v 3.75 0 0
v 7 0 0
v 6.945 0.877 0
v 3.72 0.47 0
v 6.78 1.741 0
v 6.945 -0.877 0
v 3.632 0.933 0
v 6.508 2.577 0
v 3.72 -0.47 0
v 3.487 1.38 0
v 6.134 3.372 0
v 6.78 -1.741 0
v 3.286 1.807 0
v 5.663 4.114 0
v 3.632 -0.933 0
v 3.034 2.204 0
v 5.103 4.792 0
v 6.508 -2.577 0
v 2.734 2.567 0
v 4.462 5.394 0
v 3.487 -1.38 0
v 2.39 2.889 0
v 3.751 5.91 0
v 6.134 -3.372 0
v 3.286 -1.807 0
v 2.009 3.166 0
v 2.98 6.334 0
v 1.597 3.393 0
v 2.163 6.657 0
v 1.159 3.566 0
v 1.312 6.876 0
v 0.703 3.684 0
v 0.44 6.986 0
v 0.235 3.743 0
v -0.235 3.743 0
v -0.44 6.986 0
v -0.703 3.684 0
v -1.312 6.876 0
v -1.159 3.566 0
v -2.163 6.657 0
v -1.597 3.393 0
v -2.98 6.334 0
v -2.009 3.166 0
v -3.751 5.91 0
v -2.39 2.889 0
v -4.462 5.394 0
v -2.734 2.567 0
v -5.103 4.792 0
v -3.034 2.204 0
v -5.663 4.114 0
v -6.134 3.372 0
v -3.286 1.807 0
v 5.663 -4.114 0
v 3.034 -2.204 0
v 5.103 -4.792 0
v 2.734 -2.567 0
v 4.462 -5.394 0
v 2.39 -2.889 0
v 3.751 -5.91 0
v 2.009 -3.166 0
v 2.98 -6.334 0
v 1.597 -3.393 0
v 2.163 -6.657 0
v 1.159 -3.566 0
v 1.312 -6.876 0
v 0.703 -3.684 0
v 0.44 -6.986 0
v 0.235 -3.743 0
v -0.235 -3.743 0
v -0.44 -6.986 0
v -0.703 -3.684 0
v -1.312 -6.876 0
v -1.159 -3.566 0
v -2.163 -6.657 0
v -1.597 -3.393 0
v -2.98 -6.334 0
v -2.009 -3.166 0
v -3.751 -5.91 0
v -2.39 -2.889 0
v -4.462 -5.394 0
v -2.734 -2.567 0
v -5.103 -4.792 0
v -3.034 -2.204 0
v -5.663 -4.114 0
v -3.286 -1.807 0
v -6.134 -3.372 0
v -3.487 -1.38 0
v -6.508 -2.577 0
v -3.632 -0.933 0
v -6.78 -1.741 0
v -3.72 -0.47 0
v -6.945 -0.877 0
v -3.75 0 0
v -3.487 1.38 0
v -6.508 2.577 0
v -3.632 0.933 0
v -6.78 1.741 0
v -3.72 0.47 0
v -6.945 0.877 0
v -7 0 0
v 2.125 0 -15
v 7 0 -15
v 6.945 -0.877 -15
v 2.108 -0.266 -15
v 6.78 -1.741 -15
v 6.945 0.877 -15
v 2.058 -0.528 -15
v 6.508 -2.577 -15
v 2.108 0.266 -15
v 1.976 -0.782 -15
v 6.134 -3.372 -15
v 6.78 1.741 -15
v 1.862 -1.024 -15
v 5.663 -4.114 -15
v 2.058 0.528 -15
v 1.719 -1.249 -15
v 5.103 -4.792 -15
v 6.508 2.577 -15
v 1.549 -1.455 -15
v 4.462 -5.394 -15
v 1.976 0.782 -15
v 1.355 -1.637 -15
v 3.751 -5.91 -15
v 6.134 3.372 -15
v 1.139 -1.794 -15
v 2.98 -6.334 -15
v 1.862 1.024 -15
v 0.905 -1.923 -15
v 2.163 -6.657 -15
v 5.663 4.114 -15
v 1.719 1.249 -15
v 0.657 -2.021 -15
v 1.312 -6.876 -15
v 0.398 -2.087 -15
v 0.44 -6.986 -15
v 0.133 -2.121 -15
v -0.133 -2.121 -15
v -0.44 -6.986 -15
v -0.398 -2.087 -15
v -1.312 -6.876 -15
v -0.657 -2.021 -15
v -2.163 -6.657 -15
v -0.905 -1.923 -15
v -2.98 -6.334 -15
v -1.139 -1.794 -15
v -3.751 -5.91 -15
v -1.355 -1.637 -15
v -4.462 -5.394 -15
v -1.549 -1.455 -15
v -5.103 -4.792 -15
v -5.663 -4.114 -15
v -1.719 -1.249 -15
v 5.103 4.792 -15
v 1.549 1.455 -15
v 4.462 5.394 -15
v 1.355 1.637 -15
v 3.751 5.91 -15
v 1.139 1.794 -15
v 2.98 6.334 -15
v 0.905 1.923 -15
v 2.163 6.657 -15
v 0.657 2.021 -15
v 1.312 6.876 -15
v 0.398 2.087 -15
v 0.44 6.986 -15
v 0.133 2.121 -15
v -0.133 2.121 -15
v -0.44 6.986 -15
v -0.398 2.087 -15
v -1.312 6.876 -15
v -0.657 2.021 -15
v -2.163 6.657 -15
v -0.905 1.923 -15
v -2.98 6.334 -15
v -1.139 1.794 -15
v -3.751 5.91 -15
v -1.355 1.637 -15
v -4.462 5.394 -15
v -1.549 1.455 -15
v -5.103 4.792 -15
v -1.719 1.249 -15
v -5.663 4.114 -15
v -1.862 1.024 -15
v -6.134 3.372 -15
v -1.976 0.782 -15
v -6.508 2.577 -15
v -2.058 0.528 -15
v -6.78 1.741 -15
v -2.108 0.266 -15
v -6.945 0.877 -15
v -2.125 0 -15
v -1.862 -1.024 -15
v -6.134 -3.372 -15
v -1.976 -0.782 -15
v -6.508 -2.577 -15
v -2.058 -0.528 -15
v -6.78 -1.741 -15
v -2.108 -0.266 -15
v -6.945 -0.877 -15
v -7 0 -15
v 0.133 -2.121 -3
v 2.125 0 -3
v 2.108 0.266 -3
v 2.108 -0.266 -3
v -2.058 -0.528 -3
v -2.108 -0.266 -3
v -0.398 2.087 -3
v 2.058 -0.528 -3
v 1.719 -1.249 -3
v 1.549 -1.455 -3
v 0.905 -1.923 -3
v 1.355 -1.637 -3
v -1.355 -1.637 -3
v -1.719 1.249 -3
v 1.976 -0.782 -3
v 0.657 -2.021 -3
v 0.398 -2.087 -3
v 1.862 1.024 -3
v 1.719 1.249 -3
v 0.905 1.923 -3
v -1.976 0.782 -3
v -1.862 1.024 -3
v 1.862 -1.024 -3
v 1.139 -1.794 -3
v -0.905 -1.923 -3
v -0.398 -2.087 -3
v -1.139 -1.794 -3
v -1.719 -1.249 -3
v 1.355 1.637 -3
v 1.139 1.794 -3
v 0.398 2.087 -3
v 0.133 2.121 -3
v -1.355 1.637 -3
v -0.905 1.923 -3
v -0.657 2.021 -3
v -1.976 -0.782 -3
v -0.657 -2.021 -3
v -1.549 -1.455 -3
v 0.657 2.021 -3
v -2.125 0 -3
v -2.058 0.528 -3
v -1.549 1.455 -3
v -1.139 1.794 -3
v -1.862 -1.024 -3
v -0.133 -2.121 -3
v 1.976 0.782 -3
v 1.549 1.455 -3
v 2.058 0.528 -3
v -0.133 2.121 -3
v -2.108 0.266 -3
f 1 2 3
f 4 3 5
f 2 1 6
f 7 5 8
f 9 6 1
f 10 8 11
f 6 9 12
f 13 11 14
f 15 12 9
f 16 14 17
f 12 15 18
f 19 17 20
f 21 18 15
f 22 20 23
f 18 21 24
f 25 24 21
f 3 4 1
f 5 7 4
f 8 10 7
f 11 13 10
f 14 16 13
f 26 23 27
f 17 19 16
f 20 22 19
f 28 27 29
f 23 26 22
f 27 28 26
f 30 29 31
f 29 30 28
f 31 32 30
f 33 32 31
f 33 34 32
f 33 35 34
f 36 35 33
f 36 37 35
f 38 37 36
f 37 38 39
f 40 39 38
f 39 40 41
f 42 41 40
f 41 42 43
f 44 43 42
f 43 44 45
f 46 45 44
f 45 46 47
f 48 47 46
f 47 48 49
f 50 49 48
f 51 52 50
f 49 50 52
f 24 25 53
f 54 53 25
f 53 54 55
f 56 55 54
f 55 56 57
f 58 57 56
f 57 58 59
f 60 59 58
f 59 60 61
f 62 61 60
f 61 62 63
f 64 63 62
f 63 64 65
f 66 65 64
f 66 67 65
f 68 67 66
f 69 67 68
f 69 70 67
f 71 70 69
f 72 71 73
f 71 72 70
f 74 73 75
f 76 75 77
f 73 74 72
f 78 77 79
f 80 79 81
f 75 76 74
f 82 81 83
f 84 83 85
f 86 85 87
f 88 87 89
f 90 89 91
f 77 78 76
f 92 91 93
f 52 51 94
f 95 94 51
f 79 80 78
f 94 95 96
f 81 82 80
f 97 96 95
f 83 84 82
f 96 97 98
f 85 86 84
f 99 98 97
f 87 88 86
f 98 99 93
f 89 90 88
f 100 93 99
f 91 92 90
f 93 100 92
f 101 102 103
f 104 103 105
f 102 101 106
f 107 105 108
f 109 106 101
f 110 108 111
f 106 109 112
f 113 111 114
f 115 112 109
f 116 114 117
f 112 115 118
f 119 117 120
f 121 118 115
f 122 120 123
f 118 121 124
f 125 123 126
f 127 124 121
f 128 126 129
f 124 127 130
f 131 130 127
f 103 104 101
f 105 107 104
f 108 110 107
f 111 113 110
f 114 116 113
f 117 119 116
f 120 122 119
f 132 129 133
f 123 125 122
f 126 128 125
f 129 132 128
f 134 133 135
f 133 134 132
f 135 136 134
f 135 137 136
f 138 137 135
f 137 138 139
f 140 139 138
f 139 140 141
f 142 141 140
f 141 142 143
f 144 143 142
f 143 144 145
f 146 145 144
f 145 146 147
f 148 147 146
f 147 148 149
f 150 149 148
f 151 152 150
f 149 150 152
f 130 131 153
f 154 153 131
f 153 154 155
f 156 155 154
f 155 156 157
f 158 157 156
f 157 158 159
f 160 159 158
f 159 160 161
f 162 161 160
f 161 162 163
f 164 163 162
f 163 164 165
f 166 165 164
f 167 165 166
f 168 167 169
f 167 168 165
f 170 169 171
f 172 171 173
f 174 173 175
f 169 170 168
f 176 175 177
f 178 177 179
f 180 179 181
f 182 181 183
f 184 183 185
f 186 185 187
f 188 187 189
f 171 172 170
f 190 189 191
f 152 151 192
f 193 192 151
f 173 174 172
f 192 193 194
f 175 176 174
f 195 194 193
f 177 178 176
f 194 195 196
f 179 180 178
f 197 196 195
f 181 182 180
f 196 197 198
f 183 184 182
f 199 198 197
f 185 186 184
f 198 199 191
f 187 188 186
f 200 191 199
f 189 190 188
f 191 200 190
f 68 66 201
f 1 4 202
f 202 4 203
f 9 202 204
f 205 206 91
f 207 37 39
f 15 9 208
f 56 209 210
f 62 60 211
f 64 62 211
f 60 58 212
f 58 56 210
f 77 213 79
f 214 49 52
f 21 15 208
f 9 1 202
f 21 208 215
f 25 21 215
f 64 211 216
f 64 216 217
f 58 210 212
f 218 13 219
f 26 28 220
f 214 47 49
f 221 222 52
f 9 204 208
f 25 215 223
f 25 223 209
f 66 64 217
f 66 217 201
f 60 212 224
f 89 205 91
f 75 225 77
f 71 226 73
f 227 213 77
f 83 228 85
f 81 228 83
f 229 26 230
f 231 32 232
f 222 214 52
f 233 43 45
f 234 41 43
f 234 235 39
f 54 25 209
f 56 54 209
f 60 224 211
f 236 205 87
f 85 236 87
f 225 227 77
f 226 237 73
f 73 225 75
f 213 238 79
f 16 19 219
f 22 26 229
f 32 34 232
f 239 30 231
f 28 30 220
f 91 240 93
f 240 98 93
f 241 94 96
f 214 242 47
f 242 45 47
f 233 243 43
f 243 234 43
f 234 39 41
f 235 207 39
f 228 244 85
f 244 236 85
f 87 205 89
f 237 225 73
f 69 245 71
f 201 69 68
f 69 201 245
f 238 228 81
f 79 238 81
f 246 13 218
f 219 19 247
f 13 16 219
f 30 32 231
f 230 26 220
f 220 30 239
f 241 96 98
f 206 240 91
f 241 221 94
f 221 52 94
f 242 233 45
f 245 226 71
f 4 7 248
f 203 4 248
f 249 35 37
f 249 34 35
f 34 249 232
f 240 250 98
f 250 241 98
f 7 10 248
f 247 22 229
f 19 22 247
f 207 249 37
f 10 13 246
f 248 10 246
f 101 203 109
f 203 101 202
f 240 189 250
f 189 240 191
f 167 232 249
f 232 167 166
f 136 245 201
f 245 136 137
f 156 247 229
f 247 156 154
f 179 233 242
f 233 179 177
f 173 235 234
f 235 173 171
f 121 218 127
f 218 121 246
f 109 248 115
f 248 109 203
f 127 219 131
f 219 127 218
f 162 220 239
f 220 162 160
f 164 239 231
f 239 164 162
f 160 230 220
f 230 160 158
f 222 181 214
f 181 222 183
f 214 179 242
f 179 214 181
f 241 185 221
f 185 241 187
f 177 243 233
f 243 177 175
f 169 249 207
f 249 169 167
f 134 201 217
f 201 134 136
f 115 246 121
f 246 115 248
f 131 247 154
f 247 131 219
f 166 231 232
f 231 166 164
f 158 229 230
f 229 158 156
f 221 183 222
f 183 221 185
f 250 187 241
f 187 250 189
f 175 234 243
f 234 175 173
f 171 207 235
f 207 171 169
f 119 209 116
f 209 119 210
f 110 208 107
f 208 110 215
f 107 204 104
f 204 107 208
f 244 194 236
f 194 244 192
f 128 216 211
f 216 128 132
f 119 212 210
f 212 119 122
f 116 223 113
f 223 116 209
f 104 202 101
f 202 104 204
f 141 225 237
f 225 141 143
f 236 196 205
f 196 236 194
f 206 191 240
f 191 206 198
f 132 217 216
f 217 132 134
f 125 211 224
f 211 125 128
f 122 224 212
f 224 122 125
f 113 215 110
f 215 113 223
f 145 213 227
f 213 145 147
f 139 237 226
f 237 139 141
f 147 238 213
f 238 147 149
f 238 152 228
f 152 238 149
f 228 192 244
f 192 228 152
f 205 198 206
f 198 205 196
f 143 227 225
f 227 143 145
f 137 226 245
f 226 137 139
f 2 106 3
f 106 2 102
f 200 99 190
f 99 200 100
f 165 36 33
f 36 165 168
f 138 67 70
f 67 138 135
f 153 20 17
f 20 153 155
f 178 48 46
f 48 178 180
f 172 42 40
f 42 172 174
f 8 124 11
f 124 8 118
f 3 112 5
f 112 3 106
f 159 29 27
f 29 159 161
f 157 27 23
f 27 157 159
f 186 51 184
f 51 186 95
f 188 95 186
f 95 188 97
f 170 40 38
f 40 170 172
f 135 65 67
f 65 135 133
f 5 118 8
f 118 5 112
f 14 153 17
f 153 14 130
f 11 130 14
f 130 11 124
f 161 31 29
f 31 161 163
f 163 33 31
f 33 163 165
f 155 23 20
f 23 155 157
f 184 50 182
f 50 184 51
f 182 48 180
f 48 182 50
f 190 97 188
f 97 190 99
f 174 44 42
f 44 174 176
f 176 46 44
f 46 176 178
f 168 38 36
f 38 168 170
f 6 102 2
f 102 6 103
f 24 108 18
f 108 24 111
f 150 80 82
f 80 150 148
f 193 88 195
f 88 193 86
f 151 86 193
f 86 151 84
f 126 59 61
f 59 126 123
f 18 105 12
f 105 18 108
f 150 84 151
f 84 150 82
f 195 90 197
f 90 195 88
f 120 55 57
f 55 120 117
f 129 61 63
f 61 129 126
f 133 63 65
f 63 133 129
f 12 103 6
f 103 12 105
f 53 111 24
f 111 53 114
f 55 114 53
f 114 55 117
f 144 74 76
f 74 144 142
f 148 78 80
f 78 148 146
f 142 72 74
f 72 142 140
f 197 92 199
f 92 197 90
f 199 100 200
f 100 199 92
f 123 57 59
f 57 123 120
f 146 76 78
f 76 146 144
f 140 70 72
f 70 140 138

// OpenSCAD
$fn = 50;


difference() {
	union() {
		translate(v = [0, 0, -15.0000000000]) {
			cylinder(h = 15, r = 7.0000000000);
		}
		cylinder(h = 0, r = 10.0000000000);
	}
	union() {
		translate(v = [0, 0, 0]) {
			rotate(a = [0, 0, 0]) {
				difference() {
					union() {
						#translate(v = [0, 0, -15.0000000000]) {
							cylinder(h = 15, r = 2.0000000000);
						}
						#translate(v = [0, 0, -3]) {
							cylinder(h = 3, r = 7.0000000000, r1 = 2.1250000000, r2 = 3.7500000000);
						}
						#translate(v = [0, 0, -15.0000000000]) {
							cylinder(h = 15, r = 2.1250000000);
						}
						#translate(v = [0, 0, -15.0000000000]) {
							cylinder(h = 15, r = 2.0000000000);
						}
					}
					union();
				}
			}
		}
	}
}
